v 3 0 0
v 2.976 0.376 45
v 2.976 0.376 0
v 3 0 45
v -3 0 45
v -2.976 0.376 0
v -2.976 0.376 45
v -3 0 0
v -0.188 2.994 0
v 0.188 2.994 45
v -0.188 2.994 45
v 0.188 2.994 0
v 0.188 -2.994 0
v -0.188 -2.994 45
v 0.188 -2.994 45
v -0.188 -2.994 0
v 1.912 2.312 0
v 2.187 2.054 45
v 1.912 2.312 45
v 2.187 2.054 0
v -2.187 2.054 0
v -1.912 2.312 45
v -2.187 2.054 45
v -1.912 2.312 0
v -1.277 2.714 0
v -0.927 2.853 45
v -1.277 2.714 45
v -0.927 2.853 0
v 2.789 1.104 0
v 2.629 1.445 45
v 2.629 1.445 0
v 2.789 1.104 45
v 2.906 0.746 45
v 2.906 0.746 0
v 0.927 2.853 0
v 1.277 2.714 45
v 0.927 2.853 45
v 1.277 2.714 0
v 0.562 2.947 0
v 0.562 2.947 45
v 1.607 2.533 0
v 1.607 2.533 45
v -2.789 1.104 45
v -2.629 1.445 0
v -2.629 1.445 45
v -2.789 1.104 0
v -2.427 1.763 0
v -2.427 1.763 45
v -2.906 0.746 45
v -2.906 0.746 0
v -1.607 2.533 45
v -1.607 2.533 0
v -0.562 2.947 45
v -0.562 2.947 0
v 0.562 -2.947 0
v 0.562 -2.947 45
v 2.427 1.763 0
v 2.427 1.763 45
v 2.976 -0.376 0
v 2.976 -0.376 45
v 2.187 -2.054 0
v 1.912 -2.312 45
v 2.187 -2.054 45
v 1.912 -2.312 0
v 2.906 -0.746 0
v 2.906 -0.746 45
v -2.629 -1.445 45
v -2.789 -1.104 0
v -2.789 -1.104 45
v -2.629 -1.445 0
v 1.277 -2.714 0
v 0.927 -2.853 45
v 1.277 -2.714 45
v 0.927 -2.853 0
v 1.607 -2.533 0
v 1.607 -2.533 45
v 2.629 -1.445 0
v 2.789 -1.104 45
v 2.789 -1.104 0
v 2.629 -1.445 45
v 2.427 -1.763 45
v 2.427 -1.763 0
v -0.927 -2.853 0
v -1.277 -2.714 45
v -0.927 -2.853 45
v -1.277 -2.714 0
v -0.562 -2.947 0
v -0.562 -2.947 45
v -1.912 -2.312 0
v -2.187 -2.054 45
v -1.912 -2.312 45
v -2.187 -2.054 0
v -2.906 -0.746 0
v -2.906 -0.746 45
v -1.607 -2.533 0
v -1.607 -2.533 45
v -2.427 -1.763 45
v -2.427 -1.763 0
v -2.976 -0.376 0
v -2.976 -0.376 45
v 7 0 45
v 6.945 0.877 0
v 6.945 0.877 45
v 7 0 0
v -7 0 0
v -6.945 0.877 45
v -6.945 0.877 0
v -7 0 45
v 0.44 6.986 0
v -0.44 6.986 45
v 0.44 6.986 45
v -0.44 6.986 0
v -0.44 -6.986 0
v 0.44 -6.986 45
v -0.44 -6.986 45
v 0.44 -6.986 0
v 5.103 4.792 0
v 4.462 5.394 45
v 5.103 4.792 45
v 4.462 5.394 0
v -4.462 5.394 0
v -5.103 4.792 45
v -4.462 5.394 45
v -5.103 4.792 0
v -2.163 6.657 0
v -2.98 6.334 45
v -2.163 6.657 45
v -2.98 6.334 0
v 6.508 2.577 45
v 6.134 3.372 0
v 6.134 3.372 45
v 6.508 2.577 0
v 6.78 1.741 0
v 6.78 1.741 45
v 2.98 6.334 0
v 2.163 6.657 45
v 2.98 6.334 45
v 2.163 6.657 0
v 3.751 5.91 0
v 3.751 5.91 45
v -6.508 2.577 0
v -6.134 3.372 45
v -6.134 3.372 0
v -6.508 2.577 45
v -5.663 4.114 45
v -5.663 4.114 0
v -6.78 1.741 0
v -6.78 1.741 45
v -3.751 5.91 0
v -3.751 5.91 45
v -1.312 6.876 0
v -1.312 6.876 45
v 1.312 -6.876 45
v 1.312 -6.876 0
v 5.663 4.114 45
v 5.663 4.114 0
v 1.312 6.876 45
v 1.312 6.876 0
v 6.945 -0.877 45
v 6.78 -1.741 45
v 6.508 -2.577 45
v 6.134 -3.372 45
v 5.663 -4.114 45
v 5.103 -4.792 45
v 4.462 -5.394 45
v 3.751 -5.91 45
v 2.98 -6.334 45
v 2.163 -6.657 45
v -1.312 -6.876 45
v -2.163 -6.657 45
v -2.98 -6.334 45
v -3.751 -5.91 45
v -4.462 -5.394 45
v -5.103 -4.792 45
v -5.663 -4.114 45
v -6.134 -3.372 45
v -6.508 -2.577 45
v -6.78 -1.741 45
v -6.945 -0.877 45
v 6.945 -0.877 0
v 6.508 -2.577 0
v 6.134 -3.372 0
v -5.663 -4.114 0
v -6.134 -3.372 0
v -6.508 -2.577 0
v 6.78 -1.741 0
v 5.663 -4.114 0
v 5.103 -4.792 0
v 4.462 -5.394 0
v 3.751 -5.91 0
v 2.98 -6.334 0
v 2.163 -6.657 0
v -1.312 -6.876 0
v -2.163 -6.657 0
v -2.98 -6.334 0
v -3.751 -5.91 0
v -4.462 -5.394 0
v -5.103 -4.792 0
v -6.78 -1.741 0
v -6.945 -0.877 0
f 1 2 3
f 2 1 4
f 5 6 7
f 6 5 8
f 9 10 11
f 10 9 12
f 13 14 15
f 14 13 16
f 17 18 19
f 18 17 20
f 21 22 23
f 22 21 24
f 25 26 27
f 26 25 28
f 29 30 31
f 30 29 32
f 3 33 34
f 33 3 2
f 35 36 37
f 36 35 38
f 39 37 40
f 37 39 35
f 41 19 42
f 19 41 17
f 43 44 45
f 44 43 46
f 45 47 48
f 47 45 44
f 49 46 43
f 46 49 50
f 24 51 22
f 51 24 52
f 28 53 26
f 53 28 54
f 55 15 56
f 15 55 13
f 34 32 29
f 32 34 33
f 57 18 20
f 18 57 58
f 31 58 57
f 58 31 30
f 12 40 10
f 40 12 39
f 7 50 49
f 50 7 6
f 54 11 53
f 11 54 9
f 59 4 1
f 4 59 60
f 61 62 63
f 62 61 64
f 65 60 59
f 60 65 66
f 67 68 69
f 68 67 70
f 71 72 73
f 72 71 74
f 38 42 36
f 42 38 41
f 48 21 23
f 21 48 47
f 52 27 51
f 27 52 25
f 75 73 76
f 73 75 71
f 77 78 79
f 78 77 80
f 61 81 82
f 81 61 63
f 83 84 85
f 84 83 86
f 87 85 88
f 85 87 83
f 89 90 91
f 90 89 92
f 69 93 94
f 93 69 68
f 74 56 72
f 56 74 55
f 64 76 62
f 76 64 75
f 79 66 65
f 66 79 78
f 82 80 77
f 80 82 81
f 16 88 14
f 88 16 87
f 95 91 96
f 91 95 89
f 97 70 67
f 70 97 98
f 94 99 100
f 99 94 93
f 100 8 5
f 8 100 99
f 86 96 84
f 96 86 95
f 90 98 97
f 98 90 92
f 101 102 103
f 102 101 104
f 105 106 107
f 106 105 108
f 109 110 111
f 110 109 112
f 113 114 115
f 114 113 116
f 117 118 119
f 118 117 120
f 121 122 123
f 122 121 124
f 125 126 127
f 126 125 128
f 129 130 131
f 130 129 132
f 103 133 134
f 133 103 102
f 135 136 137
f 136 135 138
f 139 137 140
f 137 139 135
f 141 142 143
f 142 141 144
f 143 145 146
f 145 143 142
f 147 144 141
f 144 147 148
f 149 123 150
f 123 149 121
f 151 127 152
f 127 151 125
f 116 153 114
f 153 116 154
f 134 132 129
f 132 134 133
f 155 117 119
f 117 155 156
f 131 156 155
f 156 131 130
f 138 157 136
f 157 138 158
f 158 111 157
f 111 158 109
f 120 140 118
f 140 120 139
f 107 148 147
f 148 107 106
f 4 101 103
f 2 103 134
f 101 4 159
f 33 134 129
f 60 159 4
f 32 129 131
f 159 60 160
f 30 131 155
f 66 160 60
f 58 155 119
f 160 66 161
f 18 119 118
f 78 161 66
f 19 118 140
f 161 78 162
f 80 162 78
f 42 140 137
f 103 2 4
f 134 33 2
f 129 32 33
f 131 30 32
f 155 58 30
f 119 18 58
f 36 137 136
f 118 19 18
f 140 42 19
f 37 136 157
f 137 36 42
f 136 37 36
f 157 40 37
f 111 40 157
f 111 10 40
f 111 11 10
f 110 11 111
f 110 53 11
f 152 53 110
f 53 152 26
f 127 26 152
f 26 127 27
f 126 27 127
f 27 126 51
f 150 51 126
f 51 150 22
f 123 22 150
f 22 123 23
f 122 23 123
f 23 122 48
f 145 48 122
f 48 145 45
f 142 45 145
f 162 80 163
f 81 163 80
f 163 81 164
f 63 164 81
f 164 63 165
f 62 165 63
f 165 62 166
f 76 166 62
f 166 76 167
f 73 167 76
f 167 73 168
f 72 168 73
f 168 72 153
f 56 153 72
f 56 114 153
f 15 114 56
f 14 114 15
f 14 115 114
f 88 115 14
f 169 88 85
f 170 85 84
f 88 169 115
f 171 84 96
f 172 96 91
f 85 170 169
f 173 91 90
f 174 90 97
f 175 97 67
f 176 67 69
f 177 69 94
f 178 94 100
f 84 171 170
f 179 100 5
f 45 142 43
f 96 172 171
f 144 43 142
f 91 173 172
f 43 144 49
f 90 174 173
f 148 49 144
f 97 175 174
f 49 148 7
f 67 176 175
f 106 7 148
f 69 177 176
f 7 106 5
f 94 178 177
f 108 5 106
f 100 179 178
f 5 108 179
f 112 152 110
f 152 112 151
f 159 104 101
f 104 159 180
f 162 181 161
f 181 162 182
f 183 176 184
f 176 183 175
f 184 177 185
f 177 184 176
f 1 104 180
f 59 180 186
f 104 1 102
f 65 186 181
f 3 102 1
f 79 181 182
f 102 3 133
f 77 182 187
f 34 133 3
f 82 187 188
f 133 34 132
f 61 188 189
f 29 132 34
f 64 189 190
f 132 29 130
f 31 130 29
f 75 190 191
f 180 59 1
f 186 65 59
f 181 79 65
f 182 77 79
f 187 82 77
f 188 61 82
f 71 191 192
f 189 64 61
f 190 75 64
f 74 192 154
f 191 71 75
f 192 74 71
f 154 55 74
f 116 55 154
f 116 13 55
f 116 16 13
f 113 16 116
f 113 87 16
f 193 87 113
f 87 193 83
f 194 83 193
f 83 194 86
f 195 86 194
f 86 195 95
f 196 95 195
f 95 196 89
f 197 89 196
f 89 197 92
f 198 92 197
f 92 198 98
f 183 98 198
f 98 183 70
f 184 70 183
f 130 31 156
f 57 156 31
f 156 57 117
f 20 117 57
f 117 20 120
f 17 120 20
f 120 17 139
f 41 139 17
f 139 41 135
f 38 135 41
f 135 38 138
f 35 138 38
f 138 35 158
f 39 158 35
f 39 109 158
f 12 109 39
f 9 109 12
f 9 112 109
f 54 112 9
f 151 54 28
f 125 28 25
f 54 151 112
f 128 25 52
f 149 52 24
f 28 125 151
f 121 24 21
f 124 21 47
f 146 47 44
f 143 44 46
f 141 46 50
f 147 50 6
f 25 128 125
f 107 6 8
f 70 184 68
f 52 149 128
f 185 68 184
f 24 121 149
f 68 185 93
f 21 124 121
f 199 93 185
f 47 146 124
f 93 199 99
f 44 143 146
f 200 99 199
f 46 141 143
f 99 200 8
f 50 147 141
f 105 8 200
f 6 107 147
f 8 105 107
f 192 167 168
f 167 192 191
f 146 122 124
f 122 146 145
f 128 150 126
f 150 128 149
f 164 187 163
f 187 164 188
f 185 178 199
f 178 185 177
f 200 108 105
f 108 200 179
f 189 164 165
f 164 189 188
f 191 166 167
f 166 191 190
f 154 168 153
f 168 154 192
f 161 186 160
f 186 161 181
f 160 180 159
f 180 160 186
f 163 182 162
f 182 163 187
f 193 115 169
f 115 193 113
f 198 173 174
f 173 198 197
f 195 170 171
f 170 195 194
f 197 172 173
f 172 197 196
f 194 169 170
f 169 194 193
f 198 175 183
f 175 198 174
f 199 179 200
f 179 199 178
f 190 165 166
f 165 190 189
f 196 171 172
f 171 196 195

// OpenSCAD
$fn = 50;


difference() {
	union() {
		*color(alpha = 1.0000000000, c = "gray") {
			translate(v = [0, 7, 0]) {
				linear_extrude(height = 1) {
					text(font = "Arial:style=Bold", halign = "center", size = 4.5000000000, text = "COMMENT plate main", valign = "center");
				}
			}
		}
		cylinder(h = 45, r = 7.0000000000);
	}
	union() {
		*color(alpha = 1.0000000000, c = "gray") {
			translate(v = [0, 7, 0]) {
				linear_extrude(height = 1) {
					text(font = "Arial:style=Bold", halign = "center", size = 4.5000000000, text = "COMMENT holes main", valign = "center");
				}
			}
		}
		translate(v = [0, 0, -100]) {
			cylinder(h = 200, r = 3.0000000000);
		}
		translate(v = [0, 0, -100]) {
			cylinder(h = 200, r = 1.5000000000);
		}
	}
}
